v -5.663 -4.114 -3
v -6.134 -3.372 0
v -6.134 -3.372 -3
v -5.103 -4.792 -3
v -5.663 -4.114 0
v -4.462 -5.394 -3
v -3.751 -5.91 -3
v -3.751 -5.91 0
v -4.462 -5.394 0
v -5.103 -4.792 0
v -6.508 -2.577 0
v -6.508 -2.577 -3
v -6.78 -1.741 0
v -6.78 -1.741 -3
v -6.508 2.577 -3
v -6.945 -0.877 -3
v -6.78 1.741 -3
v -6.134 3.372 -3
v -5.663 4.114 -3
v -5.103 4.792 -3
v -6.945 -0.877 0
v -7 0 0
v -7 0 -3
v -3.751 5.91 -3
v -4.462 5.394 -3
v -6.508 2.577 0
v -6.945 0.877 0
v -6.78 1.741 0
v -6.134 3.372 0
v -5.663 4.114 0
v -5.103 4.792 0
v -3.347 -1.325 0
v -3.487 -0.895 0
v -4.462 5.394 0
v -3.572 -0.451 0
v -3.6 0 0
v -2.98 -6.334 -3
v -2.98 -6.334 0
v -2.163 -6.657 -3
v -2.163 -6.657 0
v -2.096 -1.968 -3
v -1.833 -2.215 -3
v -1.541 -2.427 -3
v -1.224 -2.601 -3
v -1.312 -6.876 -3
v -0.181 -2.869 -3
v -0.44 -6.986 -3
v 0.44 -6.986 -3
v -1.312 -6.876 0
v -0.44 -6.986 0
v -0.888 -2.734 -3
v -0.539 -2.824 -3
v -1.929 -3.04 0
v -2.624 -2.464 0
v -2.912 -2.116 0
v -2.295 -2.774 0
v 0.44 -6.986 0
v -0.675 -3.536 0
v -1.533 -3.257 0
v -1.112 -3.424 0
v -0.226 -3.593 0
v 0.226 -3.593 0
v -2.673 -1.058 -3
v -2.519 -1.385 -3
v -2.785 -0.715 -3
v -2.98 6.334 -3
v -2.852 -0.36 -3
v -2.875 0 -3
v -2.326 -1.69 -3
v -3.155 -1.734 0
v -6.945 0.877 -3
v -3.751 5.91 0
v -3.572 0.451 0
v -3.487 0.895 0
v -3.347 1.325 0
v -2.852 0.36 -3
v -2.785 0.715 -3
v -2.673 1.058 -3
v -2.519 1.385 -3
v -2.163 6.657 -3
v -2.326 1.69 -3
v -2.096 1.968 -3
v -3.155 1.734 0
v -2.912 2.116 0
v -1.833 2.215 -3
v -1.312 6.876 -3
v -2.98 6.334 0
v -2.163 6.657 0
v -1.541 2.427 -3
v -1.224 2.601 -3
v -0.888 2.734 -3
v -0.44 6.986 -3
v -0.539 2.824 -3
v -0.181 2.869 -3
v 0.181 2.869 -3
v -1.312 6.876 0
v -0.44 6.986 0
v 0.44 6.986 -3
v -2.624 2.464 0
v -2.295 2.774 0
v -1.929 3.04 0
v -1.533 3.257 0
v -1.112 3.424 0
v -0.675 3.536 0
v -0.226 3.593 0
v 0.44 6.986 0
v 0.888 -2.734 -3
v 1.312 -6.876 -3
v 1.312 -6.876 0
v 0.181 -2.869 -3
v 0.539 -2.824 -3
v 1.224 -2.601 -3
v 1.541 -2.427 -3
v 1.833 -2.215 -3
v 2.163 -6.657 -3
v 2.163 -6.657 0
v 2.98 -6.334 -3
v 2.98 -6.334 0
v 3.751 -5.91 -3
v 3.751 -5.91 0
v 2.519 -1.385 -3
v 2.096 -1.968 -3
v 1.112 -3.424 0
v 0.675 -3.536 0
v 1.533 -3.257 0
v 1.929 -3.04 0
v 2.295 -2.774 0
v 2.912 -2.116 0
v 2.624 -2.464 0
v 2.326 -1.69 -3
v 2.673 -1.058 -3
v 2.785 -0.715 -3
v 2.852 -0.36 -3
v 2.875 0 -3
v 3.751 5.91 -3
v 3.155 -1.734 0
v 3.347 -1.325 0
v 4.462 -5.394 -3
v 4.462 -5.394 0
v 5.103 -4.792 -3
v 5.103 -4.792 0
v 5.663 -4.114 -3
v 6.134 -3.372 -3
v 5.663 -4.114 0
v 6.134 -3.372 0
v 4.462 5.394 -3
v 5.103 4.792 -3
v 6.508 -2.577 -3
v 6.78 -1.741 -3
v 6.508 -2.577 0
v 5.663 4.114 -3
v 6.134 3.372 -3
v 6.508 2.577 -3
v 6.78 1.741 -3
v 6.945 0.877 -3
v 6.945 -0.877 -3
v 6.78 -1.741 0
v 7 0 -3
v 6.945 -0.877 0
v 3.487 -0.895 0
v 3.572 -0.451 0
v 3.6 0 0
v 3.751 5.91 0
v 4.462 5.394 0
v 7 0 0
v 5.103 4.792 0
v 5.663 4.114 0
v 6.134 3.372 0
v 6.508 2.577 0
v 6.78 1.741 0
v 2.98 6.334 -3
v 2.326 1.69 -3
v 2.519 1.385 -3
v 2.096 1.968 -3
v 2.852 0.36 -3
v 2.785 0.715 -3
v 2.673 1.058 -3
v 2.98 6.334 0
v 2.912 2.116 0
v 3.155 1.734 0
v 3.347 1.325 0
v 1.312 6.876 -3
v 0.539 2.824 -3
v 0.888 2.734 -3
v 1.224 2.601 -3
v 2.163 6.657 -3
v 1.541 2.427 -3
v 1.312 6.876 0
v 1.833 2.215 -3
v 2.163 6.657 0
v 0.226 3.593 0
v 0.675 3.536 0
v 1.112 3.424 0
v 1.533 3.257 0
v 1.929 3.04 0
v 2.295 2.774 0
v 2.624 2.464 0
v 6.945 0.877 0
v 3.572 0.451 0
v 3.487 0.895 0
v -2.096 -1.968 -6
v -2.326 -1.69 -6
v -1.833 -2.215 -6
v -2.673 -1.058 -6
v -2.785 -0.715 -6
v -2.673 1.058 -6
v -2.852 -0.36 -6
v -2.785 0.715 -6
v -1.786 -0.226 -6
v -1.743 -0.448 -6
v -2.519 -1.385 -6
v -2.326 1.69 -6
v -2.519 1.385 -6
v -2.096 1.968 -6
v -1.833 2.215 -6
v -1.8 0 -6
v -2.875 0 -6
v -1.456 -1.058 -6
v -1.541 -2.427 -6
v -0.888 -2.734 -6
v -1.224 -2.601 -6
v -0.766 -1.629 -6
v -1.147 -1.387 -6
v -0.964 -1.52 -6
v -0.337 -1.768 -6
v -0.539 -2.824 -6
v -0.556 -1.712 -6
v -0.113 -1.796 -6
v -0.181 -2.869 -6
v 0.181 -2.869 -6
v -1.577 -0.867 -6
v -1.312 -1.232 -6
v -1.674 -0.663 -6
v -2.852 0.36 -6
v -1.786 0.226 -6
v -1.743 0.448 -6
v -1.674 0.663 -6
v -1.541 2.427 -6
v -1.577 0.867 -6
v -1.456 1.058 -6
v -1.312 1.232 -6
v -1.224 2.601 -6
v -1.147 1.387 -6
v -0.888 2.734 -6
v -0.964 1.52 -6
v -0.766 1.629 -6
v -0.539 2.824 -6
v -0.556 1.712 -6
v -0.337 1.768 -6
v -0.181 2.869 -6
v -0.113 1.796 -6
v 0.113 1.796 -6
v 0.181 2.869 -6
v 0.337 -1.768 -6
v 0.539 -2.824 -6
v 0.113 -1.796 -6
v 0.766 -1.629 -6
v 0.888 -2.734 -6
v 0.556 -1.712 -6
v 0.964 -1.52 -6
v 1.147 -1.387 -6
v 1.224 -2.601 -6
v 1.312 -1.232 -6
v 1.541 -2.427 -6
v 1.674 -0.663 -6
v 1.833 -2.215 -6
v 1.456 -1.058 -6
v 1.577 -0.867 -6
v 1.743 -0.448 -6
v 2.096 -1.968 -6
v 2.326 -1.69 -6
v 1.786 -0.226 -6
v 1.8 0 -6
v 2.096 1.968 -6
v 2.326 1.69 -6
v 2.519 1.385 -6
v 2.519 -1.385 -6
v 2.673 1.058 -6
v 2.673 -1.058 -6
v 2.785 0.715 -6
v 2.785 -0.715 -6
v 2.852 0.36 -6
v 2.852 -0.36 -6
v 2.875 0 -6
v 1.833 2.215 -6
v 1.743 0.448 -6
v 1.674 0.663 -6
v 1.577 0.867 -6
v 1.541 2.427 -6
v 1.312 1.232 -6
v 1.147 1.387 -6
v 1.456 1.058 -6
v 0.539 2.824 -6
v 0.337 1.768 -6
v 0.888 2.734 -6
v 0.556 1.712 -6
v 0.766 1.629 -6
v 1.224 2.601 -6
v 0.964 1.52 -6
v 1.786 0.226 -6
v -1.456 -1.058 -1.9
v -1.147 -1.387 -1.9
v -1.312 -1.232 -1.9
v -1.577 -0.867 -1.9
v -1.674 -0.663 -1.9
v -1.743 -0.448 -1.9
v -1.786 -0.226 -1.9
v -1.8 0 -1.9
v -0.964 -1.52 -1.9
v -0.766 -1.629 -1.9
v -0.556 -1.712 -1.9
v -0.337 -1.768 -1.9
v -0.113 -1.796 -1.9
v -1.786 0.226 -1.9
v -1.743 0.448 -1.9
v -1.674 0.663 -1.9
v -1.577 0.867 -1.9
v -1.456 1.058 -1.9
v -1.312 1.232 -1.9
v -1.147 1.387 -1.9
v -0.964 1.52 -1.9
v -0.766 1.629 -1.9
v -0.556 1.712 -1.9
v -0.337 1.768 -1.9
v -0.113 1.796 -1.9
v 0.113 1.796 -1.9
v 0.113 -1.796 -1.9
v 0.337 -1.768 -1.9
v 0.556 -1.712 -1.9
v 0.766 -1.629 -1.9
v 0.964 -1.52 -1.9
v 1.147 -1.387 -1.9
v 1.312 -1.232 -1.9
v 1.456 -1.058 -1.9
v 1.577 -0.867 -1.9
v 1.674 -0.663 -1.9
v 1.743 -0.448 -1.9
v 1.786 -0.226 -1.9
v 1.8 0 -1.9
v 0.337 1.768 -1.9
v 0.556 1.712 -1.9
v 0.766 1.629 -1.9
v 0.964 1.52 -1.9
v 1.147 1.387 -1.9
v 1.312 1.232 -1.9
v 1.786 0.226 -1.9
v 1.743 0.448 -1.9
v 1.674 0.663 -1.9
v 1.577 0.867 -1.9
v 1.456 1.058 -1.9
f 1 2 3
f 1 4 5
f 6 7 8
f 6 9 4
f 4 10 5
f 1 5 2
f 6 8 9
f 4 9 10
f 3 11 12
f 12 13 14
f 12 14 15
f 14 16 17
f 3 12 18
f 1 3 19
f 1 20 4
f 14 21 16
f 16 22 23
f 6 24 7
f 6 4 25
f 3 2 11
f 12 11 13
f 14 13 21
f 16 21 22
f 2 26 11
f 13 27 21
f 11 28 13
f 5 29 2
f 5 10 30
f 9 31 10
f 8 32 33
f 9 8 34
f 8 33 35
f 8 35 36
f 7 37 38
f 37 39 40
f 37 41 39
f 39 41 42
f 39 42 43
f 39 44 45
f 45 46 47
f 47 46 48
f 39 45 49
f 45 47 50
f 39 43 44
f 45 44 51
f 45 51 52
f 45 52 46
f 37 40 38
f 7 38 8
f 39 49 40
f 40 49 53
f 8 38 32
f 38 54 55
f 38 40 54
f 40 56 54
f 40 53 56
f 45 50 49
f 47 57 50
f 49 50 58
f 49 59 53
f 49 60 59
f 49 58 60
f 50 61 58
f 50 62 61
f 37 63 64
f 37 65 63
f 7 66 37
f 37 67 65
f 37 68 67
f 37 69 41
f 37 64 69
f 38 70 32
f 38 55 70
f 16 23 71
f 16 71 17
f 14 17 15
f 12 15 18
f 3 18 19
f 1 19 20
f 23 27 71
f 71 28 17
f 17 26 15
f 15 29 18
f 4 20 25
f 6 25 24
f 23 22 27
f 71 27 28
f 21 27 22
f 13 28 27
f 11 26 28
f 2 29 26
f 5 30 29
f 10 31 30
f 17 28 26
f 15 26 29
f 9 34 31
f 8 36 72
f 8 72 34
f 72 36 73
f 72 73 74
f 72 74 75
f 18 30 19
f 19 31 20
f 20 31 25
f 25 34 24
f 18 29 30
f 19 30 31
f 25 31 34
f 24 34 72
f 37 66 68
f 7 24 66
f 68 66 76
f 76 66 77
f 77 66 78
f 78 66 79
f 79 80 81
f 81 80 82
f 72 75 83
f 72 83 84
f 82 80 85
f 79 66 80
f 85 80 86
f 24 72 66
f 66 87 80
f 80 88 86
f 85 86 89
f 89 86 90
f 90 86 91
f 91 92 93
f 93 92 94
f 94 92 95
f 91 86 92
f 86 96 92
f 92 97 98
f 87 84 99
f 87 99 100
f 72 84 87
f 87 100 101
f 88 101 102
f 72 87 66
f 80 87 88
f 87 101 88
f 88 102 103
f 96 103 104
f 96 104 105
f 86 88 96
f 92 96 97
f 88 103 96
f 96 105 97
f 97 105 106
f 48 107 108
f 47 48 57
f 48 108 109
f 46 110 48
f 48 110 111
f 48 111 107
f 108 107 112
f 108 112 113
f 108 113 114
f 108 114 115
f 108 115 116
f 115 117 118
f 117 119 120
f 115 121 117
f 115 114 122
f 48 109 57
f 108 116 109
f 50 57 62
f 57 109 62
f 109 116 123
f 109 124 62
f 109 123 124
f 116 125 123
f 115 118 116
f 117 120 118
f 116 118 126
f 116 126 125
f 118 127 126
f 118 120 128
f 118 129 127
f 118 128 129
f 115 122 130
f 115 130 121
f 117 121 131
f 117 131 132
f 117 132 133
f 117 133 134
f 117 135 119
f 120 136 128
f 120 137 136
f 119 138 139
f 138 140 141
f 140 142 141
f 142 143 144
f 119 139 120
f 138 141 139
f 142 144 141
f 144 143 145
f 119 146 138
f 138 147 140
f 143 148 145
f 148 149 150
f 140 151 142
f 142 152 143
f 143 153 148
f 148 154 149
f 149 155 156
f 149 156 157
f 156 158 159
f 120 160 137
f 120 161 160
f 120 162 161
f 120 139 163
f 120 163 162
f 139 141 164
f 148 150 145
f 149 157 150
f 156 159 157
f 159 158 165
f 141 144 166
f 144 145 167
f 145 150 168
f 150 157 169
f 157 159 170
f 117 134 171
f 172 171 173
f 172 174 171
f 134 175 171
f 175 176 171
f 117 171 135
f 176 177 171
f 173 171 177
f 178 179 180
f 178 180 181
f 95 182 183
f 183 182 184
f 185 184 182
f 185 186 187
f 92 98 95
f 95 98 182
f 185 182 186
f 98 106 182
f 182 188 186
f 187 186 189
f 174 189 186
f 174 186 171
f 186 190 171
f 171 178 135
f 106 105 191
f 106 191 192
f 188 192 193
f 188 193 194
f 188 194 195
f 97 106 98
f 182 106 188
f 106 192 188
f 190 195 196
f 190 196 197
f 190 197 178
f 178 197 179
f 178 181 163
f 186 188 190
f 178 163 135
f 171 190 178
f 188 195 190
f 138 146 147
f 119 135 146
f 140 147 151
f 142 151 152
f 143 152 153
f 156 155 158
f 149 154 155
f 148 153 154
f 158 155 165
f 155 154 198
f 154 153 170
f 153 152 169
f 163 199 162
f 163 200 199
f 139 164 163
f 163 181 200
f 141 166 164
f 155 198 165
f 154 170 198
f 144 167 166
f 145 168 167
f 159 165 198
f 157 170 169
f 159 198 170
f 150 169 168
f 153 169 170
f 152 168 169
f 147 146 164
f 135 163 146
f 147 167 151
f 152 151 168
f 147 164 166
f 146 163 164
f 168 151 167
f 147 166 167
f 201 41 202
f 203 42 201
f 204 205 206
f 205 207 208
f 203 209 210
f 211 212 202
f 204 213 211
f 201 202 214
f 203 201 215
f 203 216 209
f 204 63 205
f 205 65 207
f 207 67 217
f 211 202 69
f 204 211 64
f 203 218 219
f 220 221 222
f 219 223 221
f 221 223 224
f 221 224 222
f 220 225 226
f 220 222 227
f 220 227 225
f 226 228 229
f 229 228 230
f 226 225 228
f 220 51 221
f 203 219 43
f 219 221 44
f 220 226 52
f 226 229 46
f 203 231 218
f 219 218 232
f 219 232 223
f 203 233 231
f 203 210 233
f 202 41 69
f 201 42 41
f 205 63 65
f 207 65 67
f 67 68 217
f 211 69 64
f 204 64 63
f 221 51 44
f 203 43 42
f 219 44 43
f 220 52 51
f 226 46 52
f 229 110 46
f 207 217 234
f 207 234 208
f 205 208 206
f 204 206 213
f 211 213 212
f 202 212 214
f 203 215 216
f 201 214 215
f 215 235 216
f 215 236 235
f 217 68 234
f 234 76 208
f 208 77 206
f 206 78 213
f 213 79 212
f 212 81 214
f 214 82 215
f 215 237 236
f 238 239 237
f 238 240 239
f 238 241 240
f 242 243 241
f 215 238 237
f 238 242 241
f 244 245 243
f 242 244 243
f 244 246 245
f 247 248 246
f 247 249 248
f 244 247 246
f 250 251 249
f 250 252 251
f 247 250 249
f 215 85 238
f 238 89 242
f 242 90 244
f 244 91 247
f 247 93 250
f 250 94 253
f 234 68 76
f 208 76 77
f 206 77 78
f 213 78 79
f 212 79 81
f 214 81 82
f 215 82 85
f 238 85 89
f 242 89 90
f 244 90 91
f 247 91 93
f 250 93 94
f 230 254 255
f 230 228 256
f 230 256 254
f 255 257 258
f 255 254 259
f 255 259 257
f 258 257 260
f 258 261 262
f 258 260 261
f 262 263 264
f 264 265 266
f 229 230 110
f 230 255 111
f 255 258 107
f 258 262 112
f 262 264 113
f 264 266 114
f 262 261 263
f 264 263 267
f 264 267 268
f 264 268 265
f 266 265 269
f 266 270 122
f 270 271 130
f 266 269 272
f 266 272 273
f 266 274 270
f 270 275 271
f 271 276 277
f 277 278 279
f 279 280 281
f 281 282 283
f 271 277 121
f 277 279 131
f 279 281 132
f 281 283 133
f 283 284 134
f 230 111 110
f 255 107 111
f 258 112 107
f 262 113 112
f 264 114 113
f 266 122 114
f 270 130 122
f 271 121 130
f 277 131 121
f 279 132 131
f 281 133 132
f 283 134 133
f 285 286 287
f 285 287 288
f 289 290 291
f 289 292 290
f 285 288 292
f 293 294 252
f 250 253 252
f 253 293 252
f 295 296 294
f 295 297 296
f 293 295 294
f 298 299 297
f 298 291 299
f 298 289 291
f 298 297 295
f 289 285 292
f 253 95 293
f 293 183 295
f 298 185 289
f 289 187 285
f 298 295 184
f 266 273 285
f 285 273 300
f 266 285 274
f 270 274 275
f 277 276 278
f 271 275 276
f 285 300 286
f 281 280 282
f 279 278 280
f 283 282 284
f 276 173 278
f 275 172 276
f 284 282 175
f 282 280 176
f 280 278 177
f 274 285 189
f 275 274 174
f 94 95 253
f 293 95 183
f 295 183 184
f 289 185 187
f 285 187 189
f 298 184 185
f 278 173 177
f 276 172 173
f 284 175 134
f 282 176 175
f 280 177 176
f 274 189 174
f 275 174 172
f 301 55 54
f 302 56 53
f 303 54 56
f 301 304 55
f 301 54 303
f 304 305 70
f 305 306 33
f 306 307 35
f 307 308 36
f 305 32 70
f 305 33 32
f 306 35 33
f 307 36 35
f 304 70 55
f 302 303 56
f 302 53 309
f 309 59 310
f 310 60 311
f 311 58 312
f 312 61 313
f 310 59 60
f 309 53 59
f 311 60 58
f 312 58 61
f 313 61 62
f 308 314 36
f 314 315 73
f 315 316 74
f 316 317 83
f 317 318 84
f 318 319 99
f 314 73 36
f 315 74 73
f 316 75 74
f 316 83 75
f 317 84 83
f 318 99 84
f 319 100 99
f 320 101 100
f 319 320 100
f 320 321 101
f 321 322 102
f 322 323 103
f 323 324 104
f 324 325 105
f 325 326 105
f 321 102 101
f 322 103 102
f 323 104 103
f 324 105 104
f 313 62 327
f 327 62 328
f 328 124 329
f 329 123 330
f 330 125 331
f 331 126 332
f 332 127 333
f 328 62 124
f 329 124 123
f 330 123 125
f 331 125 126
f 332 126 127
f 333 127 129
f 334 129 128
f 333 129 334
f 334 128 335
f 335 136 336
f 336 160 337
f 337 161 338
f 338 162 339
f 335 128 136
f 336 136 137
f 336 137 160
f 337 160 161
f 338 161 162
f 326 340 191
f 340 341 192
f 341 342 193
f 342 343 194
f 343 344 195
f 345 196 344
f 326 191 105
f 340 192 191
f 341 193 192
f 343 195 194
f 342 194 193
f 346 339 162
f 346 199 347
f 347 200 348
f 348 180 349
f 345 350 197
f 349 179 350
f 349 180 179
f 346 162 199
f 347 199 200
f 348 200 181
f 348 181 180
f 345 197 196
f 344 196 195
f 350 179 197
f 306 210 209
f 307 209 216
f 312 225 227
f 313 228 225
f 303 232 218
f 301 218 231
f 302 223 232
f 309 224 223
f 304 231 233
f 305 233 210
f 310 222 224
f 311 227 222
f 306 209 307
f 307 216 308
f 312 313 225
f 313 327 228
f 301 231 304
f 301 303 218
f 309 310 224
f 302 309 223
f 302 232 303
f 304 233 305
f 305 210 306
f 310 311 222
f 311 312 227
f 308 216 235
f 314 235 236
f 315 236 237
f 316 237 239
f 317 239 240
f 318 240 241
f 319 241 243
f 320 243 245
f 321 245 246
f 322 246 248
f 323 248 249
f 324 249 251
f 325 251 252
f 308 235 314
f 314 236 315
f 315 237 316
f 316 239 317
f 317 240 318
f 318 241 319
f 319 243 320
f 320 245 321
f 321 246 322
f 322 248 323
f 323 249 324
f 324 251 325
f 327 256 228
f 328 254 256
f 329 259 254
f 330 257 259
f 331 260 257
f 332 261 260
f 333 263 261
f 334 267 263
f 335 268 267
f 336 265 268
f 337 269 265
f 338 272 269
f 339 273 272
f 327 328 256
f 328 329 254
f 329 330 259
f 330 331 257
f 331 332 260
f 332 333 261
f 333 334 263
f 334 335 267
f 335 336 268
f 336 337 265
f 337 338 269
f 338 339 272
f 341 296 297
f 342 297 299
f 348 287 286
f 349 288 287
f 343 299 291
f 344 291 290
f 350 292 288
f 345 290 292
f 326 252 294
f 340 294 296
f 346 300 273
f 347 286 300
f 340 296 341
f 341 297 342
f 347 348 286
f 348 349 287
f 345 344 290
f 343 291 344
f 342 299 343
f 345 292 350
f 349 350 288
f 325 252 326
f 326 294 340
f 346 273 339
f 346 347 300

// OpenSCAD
$fn = 50;


difference() {
	union() {
		translate(v = [0, 0, -3.0000000000]) {
			cylinder(h = 3, r = 7.0000000000);
		}
		#translate(v = [0, 0, -6.0000000000]) {
			cylinder(h = 6, r = 2.8750000000);
		}
	}
	union() {
		translate(v = [0, 0, 0]) {
			rotate(a = [0, 0, 0]) {
				difference() {
					union() {
						translate(v = [0, 0, -6.0000000000]) {
							cylinder(h = 6, r = 1.5000000000);
						}
						translate(v = [0, 0, -1.9000000000]) {
							cylinder(h = 1.9000000000, r1 = 1.8000000000, r2 = 3.6000000000);
						}
						translate(v = [0, 0, -6.0000000000]) {
							cylinder(h = 6, r = 1.8000000000);
						}
						translate(v = [0, 0, -6.0000000000]) {
							cylinder(h = 6, r = 1.5000000000);
						}
					}
					union();
				}
			}
		}
	}
}
